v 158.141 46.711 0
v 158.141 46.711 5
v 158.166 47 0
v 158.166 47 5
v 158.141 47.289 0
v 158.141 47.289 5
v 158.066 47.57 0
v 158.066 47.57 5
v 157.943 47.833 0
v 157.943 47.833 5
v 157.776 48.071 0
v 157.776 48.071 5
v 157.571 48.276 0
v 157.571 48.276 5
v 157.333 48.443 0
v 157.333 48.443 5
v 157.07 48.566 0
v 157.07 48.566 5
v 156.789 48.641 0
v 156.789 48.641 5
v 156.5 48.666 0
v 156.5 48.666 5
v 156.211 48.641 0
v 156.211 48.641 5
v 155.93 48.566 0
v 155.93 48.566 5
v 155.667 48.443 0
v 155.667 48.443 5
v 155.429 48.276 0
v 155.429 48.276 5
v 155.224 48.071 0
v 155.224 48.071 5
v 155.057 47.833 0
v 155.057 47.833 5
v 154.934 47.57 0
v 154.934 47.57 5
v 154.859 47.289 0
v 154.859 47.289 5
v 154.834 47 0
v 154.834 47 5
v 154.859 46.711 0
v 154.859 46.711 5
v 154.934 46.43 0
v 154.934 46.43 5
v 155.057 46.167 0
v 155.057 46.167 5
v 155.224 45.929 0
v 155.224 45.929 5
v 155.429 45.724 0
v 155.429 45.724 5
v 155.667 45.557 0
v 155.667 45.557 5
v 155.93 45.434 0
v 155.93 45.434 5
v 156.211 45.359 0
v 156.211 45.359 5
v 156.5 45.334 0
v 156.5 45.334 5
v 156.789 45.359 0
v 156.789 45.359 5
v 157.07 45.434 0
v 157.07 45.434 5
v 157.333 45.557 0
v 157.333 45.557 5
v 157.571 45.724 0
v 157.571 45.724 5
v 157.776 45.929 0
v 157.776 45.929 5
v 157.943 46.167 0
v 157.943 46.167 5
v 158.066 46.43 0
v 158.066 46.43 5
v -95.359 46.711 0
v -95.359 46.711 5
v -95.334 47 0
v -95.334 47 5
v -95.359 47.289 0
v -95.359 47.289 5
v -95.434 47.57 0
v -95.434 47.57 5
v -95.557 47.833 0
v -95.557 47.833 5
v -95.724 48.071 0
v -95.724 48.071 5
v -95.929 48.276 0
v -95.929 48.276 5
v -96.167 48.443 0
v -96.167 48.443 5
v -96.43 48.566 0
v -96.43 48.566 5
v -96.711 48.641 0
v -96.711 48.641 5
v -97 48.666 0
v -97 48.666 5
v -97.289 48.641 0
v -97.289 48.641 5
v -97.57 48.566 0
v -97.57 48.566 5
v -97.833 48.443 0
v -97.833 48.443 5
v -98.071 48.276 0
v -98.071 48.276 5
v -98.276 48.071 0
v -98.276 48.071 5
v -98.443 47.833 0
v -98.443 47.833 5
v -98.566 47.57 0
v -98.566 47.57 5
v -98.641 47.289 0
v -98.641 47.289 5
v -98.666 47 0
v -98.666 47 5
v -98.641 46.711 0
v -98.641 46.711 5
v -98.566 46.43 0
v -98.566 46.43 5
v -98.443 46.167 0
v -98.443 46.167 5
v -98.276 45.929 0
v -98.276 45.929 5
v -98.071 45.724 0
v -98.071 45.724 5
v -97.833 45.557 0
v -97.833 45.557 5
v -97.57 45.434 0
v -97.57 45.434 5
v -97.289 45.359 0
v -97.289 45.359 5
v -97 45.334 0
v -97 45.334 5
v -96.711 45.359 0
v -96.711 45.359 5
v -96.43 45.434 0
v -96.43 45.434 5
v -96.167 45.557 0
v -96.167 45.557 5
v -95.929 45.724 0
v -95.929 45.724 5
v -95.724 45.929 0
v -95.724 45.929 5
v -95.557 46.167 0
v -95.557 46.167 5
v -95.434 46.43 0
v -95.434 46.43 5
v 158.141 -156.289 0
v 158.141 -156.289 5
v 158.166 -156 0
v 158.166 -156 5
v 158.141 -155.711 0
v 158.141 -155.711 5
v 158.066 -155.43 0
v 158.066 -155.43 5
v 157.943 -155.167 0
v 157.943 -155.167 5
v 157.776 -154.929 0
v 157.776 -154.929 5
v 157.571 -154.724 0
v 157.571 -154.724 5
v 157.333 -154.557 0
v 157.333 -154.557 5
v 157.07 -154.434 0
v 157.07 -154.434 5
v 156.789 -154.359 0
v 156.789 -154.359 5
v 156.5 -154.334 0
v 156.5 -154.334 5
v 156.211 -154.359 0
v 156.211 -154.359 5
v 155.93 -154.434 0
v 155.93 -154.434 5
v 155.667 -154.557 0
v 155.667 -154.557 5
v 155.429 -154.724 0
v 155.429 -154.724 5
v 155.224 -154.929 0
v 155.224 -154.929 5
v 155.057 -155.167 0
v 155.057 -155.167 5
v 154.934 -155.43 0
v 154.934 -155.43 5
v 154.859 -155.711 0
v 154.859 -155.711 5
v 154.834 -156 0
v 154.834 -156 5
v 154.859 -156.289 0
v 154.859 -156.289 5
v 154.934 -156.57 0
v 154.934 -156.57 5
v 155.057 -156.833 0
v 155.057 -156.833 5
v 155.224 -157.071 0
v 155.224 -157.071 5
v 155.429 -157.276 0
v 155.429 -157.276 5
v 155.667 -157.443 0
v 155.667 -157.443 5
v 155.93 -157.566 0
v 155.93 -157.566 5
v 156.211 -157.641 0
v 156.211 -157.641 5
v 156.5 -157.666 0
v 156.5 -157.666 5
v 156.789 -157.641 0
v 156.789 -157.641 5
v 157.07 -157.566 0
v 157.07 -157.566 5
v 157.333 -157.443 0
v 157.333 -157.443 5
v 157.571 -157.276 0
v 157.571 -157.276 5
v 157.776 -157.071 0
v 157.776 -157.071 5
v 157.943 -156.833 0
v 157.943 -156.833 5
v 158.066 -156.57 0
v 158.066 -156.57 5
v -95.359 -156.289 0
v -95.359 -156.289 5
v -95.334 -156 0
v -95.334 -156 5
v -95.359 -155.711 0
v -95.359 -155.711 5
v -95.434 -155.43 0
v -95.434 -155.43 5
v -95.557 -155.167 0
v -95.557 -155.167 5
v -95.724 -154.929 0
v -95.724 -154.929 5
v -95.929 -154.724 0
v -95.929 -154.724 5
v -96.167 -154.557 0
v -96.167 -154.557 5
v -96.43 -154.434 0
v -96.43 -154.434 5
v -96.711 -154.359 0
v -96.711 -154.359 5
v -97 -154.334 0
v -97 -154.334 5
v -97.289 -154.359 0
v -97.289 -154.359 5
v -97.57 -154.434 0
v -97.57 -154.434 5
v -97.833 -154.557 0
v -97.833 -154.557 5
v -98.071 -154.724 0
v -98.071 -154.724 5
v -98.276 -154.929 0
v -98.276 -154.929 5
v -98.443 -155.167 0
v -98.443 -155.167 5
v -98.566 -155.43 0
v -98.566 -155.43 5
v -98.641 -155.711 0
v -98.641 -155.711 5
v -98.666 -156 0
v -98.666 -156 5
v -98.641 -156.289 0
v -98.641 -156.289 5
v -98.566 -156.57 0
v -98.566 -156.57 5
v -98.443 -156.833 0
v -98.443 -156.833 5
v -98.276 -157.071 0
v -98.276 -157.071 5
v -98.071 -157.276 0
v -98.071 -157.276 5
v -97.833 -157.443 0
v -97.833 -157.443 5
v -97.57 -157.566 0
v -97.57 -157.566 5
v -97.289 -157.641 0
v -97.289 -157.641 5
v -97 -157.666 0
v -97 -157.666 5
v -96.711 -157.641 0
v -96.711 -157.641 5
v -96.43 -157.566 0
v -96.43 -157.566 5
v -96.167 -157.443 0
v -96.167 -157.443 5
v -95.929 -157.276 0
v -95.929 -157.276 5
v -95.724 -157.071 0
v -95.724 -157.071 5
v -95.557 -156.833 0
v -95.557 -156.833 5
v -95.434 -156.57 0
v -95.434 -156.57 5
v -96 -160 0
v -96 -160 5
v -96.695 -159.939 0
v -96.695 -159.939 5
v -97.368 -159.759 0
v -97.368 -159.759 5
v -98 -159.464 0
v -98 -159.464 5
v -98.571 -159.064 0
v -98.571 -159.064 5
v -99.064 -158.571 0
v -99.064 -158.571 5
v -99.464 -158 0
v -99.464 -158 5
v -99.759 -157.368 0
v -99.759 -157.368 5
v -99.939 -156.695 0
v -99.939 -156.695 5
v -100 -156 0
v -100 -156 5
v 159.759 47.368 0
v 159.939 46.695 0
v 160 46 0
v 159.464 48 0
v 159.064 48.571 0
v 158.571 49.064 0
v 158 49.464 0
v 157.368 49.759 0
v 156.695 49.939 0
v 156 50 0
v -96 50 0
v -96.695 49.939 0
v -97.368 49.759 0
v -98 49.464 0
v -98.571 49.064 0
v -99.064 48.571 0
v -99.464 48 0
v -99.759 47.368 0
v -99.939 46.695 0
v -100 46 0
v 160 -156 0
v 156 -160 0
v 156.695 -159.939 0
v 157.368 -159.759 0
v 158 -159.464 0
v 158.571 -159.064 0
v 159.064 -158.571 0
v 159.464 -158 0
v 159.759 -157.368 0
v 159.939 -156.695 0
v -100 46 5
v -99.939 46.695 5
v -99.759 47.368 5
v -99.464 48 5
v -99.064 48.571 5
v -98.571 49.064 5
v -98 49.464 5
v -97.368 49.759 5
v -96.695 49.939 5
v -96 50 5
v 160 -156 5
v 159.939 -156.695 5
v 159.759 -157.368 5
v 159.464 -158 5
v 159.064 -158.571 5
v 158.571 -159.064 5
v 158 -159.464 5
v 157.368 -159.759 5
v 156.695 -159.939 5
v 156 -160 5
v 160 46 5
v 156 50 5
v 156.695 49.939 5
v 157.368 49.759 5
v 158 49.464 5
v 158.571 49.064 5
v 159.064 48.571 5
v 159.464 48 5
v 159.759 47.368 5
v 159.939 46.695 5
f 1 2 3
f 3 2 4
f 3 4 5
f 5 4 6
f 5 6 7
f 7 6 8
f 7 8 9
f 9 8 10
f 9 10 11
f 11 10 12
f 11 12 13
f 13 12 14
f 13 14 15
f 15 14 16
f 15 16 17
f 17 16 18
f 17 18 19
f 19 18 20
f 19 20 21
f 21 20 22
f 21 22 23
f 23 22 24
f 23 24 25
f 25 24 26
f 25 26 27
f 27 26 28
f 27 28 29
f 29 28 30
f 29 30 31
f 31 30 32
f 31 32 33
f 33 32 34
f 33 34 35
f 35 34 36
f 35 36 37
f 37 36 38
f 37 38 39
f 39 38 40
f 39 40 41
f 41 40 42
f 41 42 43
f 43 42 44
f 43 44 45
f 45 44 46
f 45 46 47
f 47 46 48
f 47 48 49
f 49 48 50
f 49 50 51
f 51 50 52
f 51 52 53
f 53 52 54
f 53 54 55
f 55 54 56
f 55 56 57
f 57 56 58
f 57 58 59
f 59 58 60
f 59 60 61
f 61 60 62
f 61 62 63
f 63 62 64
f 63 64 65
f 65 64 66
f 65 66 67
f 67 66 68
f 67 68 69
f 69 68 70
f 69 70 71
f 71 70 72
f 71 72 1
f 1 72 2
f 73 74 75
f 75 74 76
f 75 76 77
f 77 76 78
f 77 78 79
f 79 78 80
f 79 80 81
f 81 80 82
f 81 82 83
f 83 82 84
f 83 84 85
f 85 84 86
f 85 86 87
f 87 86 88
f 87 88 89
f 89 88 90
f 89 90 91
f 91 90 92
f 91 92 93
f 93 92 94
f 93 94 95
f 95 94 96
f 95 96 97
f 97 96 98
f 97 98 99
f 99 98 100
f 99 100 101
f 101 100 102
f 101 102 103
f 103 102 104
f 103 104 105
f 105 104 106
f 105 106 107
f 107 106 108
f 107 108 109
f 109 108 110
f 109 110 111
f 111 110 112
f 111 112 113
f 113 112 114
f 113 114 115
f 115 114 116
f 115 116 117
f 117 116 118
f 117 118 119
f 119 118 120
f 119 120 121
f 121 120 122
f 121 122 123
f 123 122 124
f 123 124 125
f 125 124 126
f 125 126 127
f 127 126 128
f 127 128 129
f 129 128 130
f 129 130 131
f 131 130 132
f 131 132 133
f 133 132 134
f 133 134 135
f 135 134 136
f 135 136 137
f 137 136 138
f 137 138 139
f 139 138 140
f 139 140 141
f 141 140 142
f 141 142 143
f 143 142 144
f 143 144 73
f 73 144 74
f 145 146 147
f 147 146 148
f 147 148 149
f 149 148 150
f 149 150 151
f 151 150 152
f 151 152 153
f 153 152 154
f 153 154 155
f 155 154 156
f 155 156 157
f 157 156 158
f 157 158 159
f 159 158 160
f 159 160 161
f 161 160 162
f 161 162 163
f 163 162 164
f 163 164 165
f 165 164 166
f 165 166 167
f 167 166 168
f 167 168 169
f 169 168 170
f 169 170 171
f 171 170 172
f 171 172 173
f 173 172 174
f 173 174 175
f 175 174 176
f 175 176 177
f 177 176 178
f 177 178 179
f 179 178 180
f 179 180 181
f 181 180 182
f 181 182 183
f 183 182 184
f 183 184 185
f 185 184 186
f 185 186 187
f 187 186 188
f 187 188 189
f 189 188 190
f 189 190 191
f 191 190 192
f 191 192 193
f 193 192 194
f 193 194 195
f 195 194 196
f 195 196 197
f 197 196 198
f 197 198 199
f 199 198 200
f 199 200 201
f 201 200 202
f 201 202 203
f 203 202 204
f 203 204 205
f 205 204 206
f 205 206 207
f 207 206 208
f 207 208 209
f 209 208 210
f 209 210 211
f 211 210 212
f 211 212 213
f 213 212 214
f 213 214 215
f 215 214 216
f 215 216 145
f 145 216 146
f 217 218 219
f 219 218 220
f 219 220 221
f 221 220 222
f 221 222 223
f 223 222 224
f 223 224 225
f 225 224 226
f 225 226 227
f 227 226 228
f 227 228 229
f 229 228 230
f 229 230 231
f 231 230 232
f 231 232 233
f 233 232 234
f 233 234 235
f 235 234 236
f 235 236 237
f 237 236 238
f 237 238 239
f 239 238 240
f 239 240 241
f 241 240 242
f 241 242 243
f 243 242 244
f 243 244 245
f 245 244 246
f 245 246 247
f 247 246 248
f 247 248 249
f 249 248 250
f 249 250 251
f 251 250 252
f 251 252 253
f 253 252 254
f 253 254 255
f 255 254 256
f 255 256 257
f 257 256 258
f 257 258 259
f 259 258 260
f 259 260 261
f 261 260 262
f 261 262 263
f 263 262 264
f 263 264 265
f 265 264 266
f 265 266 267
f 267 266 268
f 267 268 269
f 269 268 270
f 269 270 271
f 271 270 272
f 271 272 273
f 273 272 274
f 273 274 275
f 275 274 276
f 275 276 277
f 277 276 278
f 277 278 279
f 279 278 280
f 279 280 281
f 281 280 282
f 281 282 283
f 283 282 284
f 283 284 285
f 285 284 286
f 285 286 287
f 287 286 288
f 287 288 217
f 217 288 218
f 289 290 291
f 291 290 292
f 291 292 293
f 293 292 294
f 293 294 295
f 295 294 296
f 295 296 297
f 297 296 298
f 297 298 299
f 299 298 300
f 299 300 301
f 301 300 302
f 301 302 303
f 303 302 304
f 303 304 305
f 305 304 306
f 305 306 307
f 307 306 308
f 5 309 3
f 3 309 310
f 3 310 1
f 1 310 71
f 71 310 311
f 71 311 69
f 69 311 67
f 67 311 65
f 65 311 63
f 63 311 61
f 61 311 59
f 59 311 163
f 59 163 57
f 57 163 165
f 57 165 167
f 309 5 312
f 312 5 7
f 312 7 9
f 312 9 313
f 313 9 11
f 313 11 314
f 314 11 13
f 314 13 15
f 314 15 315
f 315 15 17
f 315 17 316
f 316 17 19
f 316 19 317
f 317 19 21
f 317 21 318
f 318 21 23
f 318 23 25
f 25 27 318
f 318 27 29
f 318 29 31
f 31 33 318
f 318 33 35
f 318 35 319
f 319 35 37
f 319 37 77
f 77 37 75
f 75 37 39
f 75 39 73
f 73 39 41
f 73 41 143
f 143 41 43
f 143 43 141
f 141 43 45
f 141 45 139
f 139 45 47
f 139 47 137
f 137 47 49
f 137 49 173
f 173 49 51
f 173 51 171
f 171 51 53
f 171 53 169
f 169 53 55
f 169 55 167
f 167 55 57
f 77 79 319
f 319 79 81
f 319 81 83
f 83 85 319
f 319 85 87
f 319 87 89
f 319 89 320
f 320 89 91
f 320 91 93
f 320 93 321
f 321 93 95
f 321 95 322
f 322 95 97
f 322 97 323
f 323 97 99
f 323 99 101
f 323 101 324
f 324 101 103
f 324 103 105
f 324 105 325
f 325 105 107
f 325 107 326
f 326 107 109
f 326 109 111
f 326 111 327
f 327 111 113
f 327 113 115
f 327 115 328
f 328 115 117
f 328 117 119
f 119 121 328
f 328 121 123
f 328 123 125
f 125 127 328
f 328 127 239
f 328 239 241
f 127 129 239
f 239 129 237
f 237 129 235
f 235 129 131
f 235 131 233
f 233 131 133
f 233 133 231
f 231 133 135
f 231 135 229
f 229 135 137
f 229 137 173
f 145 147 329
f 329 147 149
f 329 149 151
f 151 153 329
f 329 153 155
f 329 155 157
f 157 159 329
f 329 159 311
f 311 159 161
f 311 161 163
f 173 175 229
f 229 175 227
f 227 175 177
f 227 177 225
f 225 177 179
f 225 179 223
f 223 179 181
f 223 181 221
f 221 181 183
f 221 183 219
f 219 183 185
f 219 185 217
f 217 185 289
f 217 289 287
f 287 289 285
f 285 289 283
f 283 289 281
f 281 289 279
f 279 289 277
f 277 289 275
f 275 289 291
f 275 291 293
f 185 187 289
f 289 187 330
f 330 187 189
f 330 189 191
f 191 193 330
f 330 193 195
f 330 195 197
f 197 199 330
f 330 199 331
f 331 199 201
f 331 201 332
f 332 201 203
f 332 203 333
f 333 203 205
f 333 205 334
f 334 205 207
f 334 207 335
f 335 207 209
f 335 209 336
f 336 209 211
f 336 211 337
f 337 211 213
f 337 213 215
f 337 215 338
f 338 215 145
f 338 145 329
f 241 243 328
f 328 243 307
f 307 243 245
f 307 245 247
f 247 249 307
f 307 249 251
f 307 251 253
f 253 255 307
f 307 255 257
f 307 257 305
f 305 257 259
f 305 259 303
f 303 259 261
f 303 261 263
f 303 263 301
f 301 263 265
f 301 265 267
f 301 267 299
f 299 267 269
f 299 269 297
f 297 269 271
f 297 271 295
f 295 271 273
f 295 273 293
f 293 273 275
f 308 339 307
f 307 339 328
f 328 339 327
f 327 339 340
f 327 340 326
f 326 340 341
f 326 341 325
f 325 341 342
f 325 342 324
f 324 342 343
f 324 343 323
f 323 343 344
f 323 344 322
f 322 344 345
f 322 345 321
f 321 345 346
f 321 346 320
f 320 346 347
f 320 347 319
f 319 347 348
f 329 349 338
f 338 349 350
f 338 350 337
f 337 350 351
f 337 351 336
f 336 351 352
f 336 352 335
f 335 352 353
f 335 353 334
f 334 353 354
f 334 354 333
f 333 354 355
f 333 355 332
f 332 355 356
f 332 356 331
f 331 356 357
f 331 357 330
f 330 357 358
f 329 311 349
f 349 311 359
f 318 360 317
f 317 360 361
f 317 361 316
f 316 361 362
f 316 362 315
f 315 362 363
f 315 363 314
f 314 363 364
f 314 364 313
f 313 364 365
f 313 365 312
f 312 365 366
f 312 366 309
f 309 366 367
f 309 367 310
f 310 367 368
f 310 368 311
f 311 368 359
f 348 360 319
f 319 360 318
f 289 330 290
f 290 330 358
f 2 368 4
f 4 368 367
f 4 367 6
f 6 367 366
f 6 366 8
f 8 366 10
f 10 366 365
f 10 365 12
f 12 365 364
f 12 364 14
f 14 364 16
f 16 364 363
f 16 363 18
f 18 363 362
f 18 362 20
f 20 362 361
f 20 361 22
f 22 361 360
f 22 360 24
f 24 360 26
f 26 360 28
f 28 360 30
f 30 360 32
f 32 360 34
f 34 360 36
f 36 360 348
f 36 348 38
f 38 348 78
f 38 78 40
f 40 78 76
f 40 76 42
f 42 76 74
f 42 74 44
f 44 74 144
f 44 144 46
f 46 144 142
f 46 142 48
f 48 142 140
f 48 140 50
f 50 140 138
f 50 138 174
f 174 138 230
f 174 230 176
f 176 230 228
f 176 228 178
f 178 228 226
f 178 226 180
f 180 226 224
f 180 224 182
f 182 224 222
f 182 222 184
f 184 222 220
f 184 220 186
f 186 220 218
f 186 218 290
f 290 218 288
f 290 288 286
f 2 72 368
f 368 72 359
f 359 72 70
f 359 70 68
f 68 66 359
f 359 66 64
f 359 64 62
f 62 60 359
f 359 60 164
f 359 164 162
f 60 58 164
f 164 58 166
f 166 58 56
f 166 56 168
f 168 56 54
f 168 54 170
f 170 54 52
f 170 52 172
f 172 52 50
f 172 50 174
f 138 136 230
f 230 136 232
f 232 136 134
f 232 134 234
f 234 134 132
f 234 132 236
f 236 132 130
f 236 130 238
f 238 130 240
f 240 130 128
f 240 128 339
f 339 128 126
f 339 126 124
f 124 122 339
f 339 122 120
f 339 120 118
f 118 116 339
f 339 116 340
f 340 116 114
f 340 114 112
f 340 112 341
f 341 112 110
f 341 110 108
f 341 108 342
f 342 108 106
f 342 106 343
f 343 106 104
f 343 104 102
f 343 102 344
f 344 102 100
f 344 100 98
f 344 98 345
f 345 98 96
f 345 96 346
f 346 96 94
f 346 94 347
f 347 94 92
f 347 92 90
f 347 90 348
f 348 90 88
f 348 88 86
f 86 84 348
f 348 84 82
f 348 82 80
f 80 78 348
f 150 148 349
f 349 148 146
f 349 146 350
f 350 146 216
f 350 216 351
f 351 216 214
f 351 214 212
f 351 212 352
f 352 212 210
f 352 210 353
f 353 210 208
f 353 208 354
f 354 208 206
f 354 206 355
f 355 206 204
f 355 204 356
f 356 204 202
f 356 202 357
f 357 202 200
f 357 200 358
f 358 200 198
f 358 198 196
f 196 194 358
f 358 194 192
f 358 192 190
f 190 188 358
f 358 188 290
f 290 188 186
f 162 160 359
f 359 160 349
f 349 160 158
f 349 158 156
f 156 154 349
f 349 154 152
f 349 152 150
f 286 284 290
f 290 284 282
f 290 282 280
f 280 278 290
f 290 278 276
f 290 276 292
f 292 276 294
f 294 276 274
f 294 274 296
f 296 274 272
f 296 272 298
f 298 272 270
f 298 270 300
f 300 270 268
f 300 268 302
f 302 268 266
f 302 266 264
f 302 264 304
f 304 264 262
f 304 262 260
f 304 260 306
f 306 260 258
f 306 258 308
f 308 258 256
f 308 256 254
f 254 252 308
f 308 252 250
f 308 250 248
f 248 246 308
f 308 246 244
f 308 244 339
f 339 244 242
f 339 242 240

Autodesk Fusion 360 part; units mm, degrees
sketch "Sketch1" plane through (0, 0, 0) normal (0, 0, 1) x (1, 0, 0)
  line L0 (-100, 50) -> (160, 50)
  line L1 (160, 50) -> (160, -160)
  line L2 (160, -160) -> (-100, -160)
  line L3 (-100, -160) -> (-100, 50)
  dimension "d1" = 260
  dimension "d2" = 210
extrude "Extrude1" add sketch "Sketch1" along normal blind 5
fillet "Fillet1" radius 4 4 edges at (160, 50, 2.5) (160, -160, 2.5) (-100, 50, 2.5) (-100, -160, 2.5)
sketch "Sketch2" plane through (0, 0, 5) normal (0, 0, 1) x (-1, 0, 0)
  arc A0 (100, 156) -> (96, 160) centre (96, 156) ccw
  line L0 (96, 160) -> (-156, 160)
  arc A1 (-156, 160) -> (-160, 156) centre (-156, 156) ccw
  line L1 (-160, 156) -> (-160, -46)
  arc A2 (-160, -46) -> (-156, -50) centre (-156, -46) ccw
  line L2 (-156, -50) -> (96, -50)
  arc A3 (96, -50) -> (100, -46) centre (96, -46) ccw
  line L3 (100, -46) -> (100, 156)
  circle A4 centre (97, -47) radius 2
  circle A5 centre (97, 156) radius 2
  circle A6 centre (-156.5, -47) radius 2
  circle A7 centre (-156.5, 156) radius 2
  dimension "d7" = 4
  dimension "d8" = 4
  dimension "d9" = 4
  dimension "d10" = 4
extrude "Extrude2" cut sketch "Sketch2" against normal blind 5 contours A4 | A5 | A6 | A7
thread "Thread1" "ISO Metric profile 4.0 M4x0.7 M4x0.7 6H" major diameter 4.1095 minor diameter 3.332 pitch 0.7 angle 60 resizes the face on face at (-95.4679, 48.2856, 1.6667) on face at (154.5618, -156.4935, 1.6667) on face at (155.1766, 45.5004, 1.6667) on face at (-98.9382, -156.4935, 1.6667)
